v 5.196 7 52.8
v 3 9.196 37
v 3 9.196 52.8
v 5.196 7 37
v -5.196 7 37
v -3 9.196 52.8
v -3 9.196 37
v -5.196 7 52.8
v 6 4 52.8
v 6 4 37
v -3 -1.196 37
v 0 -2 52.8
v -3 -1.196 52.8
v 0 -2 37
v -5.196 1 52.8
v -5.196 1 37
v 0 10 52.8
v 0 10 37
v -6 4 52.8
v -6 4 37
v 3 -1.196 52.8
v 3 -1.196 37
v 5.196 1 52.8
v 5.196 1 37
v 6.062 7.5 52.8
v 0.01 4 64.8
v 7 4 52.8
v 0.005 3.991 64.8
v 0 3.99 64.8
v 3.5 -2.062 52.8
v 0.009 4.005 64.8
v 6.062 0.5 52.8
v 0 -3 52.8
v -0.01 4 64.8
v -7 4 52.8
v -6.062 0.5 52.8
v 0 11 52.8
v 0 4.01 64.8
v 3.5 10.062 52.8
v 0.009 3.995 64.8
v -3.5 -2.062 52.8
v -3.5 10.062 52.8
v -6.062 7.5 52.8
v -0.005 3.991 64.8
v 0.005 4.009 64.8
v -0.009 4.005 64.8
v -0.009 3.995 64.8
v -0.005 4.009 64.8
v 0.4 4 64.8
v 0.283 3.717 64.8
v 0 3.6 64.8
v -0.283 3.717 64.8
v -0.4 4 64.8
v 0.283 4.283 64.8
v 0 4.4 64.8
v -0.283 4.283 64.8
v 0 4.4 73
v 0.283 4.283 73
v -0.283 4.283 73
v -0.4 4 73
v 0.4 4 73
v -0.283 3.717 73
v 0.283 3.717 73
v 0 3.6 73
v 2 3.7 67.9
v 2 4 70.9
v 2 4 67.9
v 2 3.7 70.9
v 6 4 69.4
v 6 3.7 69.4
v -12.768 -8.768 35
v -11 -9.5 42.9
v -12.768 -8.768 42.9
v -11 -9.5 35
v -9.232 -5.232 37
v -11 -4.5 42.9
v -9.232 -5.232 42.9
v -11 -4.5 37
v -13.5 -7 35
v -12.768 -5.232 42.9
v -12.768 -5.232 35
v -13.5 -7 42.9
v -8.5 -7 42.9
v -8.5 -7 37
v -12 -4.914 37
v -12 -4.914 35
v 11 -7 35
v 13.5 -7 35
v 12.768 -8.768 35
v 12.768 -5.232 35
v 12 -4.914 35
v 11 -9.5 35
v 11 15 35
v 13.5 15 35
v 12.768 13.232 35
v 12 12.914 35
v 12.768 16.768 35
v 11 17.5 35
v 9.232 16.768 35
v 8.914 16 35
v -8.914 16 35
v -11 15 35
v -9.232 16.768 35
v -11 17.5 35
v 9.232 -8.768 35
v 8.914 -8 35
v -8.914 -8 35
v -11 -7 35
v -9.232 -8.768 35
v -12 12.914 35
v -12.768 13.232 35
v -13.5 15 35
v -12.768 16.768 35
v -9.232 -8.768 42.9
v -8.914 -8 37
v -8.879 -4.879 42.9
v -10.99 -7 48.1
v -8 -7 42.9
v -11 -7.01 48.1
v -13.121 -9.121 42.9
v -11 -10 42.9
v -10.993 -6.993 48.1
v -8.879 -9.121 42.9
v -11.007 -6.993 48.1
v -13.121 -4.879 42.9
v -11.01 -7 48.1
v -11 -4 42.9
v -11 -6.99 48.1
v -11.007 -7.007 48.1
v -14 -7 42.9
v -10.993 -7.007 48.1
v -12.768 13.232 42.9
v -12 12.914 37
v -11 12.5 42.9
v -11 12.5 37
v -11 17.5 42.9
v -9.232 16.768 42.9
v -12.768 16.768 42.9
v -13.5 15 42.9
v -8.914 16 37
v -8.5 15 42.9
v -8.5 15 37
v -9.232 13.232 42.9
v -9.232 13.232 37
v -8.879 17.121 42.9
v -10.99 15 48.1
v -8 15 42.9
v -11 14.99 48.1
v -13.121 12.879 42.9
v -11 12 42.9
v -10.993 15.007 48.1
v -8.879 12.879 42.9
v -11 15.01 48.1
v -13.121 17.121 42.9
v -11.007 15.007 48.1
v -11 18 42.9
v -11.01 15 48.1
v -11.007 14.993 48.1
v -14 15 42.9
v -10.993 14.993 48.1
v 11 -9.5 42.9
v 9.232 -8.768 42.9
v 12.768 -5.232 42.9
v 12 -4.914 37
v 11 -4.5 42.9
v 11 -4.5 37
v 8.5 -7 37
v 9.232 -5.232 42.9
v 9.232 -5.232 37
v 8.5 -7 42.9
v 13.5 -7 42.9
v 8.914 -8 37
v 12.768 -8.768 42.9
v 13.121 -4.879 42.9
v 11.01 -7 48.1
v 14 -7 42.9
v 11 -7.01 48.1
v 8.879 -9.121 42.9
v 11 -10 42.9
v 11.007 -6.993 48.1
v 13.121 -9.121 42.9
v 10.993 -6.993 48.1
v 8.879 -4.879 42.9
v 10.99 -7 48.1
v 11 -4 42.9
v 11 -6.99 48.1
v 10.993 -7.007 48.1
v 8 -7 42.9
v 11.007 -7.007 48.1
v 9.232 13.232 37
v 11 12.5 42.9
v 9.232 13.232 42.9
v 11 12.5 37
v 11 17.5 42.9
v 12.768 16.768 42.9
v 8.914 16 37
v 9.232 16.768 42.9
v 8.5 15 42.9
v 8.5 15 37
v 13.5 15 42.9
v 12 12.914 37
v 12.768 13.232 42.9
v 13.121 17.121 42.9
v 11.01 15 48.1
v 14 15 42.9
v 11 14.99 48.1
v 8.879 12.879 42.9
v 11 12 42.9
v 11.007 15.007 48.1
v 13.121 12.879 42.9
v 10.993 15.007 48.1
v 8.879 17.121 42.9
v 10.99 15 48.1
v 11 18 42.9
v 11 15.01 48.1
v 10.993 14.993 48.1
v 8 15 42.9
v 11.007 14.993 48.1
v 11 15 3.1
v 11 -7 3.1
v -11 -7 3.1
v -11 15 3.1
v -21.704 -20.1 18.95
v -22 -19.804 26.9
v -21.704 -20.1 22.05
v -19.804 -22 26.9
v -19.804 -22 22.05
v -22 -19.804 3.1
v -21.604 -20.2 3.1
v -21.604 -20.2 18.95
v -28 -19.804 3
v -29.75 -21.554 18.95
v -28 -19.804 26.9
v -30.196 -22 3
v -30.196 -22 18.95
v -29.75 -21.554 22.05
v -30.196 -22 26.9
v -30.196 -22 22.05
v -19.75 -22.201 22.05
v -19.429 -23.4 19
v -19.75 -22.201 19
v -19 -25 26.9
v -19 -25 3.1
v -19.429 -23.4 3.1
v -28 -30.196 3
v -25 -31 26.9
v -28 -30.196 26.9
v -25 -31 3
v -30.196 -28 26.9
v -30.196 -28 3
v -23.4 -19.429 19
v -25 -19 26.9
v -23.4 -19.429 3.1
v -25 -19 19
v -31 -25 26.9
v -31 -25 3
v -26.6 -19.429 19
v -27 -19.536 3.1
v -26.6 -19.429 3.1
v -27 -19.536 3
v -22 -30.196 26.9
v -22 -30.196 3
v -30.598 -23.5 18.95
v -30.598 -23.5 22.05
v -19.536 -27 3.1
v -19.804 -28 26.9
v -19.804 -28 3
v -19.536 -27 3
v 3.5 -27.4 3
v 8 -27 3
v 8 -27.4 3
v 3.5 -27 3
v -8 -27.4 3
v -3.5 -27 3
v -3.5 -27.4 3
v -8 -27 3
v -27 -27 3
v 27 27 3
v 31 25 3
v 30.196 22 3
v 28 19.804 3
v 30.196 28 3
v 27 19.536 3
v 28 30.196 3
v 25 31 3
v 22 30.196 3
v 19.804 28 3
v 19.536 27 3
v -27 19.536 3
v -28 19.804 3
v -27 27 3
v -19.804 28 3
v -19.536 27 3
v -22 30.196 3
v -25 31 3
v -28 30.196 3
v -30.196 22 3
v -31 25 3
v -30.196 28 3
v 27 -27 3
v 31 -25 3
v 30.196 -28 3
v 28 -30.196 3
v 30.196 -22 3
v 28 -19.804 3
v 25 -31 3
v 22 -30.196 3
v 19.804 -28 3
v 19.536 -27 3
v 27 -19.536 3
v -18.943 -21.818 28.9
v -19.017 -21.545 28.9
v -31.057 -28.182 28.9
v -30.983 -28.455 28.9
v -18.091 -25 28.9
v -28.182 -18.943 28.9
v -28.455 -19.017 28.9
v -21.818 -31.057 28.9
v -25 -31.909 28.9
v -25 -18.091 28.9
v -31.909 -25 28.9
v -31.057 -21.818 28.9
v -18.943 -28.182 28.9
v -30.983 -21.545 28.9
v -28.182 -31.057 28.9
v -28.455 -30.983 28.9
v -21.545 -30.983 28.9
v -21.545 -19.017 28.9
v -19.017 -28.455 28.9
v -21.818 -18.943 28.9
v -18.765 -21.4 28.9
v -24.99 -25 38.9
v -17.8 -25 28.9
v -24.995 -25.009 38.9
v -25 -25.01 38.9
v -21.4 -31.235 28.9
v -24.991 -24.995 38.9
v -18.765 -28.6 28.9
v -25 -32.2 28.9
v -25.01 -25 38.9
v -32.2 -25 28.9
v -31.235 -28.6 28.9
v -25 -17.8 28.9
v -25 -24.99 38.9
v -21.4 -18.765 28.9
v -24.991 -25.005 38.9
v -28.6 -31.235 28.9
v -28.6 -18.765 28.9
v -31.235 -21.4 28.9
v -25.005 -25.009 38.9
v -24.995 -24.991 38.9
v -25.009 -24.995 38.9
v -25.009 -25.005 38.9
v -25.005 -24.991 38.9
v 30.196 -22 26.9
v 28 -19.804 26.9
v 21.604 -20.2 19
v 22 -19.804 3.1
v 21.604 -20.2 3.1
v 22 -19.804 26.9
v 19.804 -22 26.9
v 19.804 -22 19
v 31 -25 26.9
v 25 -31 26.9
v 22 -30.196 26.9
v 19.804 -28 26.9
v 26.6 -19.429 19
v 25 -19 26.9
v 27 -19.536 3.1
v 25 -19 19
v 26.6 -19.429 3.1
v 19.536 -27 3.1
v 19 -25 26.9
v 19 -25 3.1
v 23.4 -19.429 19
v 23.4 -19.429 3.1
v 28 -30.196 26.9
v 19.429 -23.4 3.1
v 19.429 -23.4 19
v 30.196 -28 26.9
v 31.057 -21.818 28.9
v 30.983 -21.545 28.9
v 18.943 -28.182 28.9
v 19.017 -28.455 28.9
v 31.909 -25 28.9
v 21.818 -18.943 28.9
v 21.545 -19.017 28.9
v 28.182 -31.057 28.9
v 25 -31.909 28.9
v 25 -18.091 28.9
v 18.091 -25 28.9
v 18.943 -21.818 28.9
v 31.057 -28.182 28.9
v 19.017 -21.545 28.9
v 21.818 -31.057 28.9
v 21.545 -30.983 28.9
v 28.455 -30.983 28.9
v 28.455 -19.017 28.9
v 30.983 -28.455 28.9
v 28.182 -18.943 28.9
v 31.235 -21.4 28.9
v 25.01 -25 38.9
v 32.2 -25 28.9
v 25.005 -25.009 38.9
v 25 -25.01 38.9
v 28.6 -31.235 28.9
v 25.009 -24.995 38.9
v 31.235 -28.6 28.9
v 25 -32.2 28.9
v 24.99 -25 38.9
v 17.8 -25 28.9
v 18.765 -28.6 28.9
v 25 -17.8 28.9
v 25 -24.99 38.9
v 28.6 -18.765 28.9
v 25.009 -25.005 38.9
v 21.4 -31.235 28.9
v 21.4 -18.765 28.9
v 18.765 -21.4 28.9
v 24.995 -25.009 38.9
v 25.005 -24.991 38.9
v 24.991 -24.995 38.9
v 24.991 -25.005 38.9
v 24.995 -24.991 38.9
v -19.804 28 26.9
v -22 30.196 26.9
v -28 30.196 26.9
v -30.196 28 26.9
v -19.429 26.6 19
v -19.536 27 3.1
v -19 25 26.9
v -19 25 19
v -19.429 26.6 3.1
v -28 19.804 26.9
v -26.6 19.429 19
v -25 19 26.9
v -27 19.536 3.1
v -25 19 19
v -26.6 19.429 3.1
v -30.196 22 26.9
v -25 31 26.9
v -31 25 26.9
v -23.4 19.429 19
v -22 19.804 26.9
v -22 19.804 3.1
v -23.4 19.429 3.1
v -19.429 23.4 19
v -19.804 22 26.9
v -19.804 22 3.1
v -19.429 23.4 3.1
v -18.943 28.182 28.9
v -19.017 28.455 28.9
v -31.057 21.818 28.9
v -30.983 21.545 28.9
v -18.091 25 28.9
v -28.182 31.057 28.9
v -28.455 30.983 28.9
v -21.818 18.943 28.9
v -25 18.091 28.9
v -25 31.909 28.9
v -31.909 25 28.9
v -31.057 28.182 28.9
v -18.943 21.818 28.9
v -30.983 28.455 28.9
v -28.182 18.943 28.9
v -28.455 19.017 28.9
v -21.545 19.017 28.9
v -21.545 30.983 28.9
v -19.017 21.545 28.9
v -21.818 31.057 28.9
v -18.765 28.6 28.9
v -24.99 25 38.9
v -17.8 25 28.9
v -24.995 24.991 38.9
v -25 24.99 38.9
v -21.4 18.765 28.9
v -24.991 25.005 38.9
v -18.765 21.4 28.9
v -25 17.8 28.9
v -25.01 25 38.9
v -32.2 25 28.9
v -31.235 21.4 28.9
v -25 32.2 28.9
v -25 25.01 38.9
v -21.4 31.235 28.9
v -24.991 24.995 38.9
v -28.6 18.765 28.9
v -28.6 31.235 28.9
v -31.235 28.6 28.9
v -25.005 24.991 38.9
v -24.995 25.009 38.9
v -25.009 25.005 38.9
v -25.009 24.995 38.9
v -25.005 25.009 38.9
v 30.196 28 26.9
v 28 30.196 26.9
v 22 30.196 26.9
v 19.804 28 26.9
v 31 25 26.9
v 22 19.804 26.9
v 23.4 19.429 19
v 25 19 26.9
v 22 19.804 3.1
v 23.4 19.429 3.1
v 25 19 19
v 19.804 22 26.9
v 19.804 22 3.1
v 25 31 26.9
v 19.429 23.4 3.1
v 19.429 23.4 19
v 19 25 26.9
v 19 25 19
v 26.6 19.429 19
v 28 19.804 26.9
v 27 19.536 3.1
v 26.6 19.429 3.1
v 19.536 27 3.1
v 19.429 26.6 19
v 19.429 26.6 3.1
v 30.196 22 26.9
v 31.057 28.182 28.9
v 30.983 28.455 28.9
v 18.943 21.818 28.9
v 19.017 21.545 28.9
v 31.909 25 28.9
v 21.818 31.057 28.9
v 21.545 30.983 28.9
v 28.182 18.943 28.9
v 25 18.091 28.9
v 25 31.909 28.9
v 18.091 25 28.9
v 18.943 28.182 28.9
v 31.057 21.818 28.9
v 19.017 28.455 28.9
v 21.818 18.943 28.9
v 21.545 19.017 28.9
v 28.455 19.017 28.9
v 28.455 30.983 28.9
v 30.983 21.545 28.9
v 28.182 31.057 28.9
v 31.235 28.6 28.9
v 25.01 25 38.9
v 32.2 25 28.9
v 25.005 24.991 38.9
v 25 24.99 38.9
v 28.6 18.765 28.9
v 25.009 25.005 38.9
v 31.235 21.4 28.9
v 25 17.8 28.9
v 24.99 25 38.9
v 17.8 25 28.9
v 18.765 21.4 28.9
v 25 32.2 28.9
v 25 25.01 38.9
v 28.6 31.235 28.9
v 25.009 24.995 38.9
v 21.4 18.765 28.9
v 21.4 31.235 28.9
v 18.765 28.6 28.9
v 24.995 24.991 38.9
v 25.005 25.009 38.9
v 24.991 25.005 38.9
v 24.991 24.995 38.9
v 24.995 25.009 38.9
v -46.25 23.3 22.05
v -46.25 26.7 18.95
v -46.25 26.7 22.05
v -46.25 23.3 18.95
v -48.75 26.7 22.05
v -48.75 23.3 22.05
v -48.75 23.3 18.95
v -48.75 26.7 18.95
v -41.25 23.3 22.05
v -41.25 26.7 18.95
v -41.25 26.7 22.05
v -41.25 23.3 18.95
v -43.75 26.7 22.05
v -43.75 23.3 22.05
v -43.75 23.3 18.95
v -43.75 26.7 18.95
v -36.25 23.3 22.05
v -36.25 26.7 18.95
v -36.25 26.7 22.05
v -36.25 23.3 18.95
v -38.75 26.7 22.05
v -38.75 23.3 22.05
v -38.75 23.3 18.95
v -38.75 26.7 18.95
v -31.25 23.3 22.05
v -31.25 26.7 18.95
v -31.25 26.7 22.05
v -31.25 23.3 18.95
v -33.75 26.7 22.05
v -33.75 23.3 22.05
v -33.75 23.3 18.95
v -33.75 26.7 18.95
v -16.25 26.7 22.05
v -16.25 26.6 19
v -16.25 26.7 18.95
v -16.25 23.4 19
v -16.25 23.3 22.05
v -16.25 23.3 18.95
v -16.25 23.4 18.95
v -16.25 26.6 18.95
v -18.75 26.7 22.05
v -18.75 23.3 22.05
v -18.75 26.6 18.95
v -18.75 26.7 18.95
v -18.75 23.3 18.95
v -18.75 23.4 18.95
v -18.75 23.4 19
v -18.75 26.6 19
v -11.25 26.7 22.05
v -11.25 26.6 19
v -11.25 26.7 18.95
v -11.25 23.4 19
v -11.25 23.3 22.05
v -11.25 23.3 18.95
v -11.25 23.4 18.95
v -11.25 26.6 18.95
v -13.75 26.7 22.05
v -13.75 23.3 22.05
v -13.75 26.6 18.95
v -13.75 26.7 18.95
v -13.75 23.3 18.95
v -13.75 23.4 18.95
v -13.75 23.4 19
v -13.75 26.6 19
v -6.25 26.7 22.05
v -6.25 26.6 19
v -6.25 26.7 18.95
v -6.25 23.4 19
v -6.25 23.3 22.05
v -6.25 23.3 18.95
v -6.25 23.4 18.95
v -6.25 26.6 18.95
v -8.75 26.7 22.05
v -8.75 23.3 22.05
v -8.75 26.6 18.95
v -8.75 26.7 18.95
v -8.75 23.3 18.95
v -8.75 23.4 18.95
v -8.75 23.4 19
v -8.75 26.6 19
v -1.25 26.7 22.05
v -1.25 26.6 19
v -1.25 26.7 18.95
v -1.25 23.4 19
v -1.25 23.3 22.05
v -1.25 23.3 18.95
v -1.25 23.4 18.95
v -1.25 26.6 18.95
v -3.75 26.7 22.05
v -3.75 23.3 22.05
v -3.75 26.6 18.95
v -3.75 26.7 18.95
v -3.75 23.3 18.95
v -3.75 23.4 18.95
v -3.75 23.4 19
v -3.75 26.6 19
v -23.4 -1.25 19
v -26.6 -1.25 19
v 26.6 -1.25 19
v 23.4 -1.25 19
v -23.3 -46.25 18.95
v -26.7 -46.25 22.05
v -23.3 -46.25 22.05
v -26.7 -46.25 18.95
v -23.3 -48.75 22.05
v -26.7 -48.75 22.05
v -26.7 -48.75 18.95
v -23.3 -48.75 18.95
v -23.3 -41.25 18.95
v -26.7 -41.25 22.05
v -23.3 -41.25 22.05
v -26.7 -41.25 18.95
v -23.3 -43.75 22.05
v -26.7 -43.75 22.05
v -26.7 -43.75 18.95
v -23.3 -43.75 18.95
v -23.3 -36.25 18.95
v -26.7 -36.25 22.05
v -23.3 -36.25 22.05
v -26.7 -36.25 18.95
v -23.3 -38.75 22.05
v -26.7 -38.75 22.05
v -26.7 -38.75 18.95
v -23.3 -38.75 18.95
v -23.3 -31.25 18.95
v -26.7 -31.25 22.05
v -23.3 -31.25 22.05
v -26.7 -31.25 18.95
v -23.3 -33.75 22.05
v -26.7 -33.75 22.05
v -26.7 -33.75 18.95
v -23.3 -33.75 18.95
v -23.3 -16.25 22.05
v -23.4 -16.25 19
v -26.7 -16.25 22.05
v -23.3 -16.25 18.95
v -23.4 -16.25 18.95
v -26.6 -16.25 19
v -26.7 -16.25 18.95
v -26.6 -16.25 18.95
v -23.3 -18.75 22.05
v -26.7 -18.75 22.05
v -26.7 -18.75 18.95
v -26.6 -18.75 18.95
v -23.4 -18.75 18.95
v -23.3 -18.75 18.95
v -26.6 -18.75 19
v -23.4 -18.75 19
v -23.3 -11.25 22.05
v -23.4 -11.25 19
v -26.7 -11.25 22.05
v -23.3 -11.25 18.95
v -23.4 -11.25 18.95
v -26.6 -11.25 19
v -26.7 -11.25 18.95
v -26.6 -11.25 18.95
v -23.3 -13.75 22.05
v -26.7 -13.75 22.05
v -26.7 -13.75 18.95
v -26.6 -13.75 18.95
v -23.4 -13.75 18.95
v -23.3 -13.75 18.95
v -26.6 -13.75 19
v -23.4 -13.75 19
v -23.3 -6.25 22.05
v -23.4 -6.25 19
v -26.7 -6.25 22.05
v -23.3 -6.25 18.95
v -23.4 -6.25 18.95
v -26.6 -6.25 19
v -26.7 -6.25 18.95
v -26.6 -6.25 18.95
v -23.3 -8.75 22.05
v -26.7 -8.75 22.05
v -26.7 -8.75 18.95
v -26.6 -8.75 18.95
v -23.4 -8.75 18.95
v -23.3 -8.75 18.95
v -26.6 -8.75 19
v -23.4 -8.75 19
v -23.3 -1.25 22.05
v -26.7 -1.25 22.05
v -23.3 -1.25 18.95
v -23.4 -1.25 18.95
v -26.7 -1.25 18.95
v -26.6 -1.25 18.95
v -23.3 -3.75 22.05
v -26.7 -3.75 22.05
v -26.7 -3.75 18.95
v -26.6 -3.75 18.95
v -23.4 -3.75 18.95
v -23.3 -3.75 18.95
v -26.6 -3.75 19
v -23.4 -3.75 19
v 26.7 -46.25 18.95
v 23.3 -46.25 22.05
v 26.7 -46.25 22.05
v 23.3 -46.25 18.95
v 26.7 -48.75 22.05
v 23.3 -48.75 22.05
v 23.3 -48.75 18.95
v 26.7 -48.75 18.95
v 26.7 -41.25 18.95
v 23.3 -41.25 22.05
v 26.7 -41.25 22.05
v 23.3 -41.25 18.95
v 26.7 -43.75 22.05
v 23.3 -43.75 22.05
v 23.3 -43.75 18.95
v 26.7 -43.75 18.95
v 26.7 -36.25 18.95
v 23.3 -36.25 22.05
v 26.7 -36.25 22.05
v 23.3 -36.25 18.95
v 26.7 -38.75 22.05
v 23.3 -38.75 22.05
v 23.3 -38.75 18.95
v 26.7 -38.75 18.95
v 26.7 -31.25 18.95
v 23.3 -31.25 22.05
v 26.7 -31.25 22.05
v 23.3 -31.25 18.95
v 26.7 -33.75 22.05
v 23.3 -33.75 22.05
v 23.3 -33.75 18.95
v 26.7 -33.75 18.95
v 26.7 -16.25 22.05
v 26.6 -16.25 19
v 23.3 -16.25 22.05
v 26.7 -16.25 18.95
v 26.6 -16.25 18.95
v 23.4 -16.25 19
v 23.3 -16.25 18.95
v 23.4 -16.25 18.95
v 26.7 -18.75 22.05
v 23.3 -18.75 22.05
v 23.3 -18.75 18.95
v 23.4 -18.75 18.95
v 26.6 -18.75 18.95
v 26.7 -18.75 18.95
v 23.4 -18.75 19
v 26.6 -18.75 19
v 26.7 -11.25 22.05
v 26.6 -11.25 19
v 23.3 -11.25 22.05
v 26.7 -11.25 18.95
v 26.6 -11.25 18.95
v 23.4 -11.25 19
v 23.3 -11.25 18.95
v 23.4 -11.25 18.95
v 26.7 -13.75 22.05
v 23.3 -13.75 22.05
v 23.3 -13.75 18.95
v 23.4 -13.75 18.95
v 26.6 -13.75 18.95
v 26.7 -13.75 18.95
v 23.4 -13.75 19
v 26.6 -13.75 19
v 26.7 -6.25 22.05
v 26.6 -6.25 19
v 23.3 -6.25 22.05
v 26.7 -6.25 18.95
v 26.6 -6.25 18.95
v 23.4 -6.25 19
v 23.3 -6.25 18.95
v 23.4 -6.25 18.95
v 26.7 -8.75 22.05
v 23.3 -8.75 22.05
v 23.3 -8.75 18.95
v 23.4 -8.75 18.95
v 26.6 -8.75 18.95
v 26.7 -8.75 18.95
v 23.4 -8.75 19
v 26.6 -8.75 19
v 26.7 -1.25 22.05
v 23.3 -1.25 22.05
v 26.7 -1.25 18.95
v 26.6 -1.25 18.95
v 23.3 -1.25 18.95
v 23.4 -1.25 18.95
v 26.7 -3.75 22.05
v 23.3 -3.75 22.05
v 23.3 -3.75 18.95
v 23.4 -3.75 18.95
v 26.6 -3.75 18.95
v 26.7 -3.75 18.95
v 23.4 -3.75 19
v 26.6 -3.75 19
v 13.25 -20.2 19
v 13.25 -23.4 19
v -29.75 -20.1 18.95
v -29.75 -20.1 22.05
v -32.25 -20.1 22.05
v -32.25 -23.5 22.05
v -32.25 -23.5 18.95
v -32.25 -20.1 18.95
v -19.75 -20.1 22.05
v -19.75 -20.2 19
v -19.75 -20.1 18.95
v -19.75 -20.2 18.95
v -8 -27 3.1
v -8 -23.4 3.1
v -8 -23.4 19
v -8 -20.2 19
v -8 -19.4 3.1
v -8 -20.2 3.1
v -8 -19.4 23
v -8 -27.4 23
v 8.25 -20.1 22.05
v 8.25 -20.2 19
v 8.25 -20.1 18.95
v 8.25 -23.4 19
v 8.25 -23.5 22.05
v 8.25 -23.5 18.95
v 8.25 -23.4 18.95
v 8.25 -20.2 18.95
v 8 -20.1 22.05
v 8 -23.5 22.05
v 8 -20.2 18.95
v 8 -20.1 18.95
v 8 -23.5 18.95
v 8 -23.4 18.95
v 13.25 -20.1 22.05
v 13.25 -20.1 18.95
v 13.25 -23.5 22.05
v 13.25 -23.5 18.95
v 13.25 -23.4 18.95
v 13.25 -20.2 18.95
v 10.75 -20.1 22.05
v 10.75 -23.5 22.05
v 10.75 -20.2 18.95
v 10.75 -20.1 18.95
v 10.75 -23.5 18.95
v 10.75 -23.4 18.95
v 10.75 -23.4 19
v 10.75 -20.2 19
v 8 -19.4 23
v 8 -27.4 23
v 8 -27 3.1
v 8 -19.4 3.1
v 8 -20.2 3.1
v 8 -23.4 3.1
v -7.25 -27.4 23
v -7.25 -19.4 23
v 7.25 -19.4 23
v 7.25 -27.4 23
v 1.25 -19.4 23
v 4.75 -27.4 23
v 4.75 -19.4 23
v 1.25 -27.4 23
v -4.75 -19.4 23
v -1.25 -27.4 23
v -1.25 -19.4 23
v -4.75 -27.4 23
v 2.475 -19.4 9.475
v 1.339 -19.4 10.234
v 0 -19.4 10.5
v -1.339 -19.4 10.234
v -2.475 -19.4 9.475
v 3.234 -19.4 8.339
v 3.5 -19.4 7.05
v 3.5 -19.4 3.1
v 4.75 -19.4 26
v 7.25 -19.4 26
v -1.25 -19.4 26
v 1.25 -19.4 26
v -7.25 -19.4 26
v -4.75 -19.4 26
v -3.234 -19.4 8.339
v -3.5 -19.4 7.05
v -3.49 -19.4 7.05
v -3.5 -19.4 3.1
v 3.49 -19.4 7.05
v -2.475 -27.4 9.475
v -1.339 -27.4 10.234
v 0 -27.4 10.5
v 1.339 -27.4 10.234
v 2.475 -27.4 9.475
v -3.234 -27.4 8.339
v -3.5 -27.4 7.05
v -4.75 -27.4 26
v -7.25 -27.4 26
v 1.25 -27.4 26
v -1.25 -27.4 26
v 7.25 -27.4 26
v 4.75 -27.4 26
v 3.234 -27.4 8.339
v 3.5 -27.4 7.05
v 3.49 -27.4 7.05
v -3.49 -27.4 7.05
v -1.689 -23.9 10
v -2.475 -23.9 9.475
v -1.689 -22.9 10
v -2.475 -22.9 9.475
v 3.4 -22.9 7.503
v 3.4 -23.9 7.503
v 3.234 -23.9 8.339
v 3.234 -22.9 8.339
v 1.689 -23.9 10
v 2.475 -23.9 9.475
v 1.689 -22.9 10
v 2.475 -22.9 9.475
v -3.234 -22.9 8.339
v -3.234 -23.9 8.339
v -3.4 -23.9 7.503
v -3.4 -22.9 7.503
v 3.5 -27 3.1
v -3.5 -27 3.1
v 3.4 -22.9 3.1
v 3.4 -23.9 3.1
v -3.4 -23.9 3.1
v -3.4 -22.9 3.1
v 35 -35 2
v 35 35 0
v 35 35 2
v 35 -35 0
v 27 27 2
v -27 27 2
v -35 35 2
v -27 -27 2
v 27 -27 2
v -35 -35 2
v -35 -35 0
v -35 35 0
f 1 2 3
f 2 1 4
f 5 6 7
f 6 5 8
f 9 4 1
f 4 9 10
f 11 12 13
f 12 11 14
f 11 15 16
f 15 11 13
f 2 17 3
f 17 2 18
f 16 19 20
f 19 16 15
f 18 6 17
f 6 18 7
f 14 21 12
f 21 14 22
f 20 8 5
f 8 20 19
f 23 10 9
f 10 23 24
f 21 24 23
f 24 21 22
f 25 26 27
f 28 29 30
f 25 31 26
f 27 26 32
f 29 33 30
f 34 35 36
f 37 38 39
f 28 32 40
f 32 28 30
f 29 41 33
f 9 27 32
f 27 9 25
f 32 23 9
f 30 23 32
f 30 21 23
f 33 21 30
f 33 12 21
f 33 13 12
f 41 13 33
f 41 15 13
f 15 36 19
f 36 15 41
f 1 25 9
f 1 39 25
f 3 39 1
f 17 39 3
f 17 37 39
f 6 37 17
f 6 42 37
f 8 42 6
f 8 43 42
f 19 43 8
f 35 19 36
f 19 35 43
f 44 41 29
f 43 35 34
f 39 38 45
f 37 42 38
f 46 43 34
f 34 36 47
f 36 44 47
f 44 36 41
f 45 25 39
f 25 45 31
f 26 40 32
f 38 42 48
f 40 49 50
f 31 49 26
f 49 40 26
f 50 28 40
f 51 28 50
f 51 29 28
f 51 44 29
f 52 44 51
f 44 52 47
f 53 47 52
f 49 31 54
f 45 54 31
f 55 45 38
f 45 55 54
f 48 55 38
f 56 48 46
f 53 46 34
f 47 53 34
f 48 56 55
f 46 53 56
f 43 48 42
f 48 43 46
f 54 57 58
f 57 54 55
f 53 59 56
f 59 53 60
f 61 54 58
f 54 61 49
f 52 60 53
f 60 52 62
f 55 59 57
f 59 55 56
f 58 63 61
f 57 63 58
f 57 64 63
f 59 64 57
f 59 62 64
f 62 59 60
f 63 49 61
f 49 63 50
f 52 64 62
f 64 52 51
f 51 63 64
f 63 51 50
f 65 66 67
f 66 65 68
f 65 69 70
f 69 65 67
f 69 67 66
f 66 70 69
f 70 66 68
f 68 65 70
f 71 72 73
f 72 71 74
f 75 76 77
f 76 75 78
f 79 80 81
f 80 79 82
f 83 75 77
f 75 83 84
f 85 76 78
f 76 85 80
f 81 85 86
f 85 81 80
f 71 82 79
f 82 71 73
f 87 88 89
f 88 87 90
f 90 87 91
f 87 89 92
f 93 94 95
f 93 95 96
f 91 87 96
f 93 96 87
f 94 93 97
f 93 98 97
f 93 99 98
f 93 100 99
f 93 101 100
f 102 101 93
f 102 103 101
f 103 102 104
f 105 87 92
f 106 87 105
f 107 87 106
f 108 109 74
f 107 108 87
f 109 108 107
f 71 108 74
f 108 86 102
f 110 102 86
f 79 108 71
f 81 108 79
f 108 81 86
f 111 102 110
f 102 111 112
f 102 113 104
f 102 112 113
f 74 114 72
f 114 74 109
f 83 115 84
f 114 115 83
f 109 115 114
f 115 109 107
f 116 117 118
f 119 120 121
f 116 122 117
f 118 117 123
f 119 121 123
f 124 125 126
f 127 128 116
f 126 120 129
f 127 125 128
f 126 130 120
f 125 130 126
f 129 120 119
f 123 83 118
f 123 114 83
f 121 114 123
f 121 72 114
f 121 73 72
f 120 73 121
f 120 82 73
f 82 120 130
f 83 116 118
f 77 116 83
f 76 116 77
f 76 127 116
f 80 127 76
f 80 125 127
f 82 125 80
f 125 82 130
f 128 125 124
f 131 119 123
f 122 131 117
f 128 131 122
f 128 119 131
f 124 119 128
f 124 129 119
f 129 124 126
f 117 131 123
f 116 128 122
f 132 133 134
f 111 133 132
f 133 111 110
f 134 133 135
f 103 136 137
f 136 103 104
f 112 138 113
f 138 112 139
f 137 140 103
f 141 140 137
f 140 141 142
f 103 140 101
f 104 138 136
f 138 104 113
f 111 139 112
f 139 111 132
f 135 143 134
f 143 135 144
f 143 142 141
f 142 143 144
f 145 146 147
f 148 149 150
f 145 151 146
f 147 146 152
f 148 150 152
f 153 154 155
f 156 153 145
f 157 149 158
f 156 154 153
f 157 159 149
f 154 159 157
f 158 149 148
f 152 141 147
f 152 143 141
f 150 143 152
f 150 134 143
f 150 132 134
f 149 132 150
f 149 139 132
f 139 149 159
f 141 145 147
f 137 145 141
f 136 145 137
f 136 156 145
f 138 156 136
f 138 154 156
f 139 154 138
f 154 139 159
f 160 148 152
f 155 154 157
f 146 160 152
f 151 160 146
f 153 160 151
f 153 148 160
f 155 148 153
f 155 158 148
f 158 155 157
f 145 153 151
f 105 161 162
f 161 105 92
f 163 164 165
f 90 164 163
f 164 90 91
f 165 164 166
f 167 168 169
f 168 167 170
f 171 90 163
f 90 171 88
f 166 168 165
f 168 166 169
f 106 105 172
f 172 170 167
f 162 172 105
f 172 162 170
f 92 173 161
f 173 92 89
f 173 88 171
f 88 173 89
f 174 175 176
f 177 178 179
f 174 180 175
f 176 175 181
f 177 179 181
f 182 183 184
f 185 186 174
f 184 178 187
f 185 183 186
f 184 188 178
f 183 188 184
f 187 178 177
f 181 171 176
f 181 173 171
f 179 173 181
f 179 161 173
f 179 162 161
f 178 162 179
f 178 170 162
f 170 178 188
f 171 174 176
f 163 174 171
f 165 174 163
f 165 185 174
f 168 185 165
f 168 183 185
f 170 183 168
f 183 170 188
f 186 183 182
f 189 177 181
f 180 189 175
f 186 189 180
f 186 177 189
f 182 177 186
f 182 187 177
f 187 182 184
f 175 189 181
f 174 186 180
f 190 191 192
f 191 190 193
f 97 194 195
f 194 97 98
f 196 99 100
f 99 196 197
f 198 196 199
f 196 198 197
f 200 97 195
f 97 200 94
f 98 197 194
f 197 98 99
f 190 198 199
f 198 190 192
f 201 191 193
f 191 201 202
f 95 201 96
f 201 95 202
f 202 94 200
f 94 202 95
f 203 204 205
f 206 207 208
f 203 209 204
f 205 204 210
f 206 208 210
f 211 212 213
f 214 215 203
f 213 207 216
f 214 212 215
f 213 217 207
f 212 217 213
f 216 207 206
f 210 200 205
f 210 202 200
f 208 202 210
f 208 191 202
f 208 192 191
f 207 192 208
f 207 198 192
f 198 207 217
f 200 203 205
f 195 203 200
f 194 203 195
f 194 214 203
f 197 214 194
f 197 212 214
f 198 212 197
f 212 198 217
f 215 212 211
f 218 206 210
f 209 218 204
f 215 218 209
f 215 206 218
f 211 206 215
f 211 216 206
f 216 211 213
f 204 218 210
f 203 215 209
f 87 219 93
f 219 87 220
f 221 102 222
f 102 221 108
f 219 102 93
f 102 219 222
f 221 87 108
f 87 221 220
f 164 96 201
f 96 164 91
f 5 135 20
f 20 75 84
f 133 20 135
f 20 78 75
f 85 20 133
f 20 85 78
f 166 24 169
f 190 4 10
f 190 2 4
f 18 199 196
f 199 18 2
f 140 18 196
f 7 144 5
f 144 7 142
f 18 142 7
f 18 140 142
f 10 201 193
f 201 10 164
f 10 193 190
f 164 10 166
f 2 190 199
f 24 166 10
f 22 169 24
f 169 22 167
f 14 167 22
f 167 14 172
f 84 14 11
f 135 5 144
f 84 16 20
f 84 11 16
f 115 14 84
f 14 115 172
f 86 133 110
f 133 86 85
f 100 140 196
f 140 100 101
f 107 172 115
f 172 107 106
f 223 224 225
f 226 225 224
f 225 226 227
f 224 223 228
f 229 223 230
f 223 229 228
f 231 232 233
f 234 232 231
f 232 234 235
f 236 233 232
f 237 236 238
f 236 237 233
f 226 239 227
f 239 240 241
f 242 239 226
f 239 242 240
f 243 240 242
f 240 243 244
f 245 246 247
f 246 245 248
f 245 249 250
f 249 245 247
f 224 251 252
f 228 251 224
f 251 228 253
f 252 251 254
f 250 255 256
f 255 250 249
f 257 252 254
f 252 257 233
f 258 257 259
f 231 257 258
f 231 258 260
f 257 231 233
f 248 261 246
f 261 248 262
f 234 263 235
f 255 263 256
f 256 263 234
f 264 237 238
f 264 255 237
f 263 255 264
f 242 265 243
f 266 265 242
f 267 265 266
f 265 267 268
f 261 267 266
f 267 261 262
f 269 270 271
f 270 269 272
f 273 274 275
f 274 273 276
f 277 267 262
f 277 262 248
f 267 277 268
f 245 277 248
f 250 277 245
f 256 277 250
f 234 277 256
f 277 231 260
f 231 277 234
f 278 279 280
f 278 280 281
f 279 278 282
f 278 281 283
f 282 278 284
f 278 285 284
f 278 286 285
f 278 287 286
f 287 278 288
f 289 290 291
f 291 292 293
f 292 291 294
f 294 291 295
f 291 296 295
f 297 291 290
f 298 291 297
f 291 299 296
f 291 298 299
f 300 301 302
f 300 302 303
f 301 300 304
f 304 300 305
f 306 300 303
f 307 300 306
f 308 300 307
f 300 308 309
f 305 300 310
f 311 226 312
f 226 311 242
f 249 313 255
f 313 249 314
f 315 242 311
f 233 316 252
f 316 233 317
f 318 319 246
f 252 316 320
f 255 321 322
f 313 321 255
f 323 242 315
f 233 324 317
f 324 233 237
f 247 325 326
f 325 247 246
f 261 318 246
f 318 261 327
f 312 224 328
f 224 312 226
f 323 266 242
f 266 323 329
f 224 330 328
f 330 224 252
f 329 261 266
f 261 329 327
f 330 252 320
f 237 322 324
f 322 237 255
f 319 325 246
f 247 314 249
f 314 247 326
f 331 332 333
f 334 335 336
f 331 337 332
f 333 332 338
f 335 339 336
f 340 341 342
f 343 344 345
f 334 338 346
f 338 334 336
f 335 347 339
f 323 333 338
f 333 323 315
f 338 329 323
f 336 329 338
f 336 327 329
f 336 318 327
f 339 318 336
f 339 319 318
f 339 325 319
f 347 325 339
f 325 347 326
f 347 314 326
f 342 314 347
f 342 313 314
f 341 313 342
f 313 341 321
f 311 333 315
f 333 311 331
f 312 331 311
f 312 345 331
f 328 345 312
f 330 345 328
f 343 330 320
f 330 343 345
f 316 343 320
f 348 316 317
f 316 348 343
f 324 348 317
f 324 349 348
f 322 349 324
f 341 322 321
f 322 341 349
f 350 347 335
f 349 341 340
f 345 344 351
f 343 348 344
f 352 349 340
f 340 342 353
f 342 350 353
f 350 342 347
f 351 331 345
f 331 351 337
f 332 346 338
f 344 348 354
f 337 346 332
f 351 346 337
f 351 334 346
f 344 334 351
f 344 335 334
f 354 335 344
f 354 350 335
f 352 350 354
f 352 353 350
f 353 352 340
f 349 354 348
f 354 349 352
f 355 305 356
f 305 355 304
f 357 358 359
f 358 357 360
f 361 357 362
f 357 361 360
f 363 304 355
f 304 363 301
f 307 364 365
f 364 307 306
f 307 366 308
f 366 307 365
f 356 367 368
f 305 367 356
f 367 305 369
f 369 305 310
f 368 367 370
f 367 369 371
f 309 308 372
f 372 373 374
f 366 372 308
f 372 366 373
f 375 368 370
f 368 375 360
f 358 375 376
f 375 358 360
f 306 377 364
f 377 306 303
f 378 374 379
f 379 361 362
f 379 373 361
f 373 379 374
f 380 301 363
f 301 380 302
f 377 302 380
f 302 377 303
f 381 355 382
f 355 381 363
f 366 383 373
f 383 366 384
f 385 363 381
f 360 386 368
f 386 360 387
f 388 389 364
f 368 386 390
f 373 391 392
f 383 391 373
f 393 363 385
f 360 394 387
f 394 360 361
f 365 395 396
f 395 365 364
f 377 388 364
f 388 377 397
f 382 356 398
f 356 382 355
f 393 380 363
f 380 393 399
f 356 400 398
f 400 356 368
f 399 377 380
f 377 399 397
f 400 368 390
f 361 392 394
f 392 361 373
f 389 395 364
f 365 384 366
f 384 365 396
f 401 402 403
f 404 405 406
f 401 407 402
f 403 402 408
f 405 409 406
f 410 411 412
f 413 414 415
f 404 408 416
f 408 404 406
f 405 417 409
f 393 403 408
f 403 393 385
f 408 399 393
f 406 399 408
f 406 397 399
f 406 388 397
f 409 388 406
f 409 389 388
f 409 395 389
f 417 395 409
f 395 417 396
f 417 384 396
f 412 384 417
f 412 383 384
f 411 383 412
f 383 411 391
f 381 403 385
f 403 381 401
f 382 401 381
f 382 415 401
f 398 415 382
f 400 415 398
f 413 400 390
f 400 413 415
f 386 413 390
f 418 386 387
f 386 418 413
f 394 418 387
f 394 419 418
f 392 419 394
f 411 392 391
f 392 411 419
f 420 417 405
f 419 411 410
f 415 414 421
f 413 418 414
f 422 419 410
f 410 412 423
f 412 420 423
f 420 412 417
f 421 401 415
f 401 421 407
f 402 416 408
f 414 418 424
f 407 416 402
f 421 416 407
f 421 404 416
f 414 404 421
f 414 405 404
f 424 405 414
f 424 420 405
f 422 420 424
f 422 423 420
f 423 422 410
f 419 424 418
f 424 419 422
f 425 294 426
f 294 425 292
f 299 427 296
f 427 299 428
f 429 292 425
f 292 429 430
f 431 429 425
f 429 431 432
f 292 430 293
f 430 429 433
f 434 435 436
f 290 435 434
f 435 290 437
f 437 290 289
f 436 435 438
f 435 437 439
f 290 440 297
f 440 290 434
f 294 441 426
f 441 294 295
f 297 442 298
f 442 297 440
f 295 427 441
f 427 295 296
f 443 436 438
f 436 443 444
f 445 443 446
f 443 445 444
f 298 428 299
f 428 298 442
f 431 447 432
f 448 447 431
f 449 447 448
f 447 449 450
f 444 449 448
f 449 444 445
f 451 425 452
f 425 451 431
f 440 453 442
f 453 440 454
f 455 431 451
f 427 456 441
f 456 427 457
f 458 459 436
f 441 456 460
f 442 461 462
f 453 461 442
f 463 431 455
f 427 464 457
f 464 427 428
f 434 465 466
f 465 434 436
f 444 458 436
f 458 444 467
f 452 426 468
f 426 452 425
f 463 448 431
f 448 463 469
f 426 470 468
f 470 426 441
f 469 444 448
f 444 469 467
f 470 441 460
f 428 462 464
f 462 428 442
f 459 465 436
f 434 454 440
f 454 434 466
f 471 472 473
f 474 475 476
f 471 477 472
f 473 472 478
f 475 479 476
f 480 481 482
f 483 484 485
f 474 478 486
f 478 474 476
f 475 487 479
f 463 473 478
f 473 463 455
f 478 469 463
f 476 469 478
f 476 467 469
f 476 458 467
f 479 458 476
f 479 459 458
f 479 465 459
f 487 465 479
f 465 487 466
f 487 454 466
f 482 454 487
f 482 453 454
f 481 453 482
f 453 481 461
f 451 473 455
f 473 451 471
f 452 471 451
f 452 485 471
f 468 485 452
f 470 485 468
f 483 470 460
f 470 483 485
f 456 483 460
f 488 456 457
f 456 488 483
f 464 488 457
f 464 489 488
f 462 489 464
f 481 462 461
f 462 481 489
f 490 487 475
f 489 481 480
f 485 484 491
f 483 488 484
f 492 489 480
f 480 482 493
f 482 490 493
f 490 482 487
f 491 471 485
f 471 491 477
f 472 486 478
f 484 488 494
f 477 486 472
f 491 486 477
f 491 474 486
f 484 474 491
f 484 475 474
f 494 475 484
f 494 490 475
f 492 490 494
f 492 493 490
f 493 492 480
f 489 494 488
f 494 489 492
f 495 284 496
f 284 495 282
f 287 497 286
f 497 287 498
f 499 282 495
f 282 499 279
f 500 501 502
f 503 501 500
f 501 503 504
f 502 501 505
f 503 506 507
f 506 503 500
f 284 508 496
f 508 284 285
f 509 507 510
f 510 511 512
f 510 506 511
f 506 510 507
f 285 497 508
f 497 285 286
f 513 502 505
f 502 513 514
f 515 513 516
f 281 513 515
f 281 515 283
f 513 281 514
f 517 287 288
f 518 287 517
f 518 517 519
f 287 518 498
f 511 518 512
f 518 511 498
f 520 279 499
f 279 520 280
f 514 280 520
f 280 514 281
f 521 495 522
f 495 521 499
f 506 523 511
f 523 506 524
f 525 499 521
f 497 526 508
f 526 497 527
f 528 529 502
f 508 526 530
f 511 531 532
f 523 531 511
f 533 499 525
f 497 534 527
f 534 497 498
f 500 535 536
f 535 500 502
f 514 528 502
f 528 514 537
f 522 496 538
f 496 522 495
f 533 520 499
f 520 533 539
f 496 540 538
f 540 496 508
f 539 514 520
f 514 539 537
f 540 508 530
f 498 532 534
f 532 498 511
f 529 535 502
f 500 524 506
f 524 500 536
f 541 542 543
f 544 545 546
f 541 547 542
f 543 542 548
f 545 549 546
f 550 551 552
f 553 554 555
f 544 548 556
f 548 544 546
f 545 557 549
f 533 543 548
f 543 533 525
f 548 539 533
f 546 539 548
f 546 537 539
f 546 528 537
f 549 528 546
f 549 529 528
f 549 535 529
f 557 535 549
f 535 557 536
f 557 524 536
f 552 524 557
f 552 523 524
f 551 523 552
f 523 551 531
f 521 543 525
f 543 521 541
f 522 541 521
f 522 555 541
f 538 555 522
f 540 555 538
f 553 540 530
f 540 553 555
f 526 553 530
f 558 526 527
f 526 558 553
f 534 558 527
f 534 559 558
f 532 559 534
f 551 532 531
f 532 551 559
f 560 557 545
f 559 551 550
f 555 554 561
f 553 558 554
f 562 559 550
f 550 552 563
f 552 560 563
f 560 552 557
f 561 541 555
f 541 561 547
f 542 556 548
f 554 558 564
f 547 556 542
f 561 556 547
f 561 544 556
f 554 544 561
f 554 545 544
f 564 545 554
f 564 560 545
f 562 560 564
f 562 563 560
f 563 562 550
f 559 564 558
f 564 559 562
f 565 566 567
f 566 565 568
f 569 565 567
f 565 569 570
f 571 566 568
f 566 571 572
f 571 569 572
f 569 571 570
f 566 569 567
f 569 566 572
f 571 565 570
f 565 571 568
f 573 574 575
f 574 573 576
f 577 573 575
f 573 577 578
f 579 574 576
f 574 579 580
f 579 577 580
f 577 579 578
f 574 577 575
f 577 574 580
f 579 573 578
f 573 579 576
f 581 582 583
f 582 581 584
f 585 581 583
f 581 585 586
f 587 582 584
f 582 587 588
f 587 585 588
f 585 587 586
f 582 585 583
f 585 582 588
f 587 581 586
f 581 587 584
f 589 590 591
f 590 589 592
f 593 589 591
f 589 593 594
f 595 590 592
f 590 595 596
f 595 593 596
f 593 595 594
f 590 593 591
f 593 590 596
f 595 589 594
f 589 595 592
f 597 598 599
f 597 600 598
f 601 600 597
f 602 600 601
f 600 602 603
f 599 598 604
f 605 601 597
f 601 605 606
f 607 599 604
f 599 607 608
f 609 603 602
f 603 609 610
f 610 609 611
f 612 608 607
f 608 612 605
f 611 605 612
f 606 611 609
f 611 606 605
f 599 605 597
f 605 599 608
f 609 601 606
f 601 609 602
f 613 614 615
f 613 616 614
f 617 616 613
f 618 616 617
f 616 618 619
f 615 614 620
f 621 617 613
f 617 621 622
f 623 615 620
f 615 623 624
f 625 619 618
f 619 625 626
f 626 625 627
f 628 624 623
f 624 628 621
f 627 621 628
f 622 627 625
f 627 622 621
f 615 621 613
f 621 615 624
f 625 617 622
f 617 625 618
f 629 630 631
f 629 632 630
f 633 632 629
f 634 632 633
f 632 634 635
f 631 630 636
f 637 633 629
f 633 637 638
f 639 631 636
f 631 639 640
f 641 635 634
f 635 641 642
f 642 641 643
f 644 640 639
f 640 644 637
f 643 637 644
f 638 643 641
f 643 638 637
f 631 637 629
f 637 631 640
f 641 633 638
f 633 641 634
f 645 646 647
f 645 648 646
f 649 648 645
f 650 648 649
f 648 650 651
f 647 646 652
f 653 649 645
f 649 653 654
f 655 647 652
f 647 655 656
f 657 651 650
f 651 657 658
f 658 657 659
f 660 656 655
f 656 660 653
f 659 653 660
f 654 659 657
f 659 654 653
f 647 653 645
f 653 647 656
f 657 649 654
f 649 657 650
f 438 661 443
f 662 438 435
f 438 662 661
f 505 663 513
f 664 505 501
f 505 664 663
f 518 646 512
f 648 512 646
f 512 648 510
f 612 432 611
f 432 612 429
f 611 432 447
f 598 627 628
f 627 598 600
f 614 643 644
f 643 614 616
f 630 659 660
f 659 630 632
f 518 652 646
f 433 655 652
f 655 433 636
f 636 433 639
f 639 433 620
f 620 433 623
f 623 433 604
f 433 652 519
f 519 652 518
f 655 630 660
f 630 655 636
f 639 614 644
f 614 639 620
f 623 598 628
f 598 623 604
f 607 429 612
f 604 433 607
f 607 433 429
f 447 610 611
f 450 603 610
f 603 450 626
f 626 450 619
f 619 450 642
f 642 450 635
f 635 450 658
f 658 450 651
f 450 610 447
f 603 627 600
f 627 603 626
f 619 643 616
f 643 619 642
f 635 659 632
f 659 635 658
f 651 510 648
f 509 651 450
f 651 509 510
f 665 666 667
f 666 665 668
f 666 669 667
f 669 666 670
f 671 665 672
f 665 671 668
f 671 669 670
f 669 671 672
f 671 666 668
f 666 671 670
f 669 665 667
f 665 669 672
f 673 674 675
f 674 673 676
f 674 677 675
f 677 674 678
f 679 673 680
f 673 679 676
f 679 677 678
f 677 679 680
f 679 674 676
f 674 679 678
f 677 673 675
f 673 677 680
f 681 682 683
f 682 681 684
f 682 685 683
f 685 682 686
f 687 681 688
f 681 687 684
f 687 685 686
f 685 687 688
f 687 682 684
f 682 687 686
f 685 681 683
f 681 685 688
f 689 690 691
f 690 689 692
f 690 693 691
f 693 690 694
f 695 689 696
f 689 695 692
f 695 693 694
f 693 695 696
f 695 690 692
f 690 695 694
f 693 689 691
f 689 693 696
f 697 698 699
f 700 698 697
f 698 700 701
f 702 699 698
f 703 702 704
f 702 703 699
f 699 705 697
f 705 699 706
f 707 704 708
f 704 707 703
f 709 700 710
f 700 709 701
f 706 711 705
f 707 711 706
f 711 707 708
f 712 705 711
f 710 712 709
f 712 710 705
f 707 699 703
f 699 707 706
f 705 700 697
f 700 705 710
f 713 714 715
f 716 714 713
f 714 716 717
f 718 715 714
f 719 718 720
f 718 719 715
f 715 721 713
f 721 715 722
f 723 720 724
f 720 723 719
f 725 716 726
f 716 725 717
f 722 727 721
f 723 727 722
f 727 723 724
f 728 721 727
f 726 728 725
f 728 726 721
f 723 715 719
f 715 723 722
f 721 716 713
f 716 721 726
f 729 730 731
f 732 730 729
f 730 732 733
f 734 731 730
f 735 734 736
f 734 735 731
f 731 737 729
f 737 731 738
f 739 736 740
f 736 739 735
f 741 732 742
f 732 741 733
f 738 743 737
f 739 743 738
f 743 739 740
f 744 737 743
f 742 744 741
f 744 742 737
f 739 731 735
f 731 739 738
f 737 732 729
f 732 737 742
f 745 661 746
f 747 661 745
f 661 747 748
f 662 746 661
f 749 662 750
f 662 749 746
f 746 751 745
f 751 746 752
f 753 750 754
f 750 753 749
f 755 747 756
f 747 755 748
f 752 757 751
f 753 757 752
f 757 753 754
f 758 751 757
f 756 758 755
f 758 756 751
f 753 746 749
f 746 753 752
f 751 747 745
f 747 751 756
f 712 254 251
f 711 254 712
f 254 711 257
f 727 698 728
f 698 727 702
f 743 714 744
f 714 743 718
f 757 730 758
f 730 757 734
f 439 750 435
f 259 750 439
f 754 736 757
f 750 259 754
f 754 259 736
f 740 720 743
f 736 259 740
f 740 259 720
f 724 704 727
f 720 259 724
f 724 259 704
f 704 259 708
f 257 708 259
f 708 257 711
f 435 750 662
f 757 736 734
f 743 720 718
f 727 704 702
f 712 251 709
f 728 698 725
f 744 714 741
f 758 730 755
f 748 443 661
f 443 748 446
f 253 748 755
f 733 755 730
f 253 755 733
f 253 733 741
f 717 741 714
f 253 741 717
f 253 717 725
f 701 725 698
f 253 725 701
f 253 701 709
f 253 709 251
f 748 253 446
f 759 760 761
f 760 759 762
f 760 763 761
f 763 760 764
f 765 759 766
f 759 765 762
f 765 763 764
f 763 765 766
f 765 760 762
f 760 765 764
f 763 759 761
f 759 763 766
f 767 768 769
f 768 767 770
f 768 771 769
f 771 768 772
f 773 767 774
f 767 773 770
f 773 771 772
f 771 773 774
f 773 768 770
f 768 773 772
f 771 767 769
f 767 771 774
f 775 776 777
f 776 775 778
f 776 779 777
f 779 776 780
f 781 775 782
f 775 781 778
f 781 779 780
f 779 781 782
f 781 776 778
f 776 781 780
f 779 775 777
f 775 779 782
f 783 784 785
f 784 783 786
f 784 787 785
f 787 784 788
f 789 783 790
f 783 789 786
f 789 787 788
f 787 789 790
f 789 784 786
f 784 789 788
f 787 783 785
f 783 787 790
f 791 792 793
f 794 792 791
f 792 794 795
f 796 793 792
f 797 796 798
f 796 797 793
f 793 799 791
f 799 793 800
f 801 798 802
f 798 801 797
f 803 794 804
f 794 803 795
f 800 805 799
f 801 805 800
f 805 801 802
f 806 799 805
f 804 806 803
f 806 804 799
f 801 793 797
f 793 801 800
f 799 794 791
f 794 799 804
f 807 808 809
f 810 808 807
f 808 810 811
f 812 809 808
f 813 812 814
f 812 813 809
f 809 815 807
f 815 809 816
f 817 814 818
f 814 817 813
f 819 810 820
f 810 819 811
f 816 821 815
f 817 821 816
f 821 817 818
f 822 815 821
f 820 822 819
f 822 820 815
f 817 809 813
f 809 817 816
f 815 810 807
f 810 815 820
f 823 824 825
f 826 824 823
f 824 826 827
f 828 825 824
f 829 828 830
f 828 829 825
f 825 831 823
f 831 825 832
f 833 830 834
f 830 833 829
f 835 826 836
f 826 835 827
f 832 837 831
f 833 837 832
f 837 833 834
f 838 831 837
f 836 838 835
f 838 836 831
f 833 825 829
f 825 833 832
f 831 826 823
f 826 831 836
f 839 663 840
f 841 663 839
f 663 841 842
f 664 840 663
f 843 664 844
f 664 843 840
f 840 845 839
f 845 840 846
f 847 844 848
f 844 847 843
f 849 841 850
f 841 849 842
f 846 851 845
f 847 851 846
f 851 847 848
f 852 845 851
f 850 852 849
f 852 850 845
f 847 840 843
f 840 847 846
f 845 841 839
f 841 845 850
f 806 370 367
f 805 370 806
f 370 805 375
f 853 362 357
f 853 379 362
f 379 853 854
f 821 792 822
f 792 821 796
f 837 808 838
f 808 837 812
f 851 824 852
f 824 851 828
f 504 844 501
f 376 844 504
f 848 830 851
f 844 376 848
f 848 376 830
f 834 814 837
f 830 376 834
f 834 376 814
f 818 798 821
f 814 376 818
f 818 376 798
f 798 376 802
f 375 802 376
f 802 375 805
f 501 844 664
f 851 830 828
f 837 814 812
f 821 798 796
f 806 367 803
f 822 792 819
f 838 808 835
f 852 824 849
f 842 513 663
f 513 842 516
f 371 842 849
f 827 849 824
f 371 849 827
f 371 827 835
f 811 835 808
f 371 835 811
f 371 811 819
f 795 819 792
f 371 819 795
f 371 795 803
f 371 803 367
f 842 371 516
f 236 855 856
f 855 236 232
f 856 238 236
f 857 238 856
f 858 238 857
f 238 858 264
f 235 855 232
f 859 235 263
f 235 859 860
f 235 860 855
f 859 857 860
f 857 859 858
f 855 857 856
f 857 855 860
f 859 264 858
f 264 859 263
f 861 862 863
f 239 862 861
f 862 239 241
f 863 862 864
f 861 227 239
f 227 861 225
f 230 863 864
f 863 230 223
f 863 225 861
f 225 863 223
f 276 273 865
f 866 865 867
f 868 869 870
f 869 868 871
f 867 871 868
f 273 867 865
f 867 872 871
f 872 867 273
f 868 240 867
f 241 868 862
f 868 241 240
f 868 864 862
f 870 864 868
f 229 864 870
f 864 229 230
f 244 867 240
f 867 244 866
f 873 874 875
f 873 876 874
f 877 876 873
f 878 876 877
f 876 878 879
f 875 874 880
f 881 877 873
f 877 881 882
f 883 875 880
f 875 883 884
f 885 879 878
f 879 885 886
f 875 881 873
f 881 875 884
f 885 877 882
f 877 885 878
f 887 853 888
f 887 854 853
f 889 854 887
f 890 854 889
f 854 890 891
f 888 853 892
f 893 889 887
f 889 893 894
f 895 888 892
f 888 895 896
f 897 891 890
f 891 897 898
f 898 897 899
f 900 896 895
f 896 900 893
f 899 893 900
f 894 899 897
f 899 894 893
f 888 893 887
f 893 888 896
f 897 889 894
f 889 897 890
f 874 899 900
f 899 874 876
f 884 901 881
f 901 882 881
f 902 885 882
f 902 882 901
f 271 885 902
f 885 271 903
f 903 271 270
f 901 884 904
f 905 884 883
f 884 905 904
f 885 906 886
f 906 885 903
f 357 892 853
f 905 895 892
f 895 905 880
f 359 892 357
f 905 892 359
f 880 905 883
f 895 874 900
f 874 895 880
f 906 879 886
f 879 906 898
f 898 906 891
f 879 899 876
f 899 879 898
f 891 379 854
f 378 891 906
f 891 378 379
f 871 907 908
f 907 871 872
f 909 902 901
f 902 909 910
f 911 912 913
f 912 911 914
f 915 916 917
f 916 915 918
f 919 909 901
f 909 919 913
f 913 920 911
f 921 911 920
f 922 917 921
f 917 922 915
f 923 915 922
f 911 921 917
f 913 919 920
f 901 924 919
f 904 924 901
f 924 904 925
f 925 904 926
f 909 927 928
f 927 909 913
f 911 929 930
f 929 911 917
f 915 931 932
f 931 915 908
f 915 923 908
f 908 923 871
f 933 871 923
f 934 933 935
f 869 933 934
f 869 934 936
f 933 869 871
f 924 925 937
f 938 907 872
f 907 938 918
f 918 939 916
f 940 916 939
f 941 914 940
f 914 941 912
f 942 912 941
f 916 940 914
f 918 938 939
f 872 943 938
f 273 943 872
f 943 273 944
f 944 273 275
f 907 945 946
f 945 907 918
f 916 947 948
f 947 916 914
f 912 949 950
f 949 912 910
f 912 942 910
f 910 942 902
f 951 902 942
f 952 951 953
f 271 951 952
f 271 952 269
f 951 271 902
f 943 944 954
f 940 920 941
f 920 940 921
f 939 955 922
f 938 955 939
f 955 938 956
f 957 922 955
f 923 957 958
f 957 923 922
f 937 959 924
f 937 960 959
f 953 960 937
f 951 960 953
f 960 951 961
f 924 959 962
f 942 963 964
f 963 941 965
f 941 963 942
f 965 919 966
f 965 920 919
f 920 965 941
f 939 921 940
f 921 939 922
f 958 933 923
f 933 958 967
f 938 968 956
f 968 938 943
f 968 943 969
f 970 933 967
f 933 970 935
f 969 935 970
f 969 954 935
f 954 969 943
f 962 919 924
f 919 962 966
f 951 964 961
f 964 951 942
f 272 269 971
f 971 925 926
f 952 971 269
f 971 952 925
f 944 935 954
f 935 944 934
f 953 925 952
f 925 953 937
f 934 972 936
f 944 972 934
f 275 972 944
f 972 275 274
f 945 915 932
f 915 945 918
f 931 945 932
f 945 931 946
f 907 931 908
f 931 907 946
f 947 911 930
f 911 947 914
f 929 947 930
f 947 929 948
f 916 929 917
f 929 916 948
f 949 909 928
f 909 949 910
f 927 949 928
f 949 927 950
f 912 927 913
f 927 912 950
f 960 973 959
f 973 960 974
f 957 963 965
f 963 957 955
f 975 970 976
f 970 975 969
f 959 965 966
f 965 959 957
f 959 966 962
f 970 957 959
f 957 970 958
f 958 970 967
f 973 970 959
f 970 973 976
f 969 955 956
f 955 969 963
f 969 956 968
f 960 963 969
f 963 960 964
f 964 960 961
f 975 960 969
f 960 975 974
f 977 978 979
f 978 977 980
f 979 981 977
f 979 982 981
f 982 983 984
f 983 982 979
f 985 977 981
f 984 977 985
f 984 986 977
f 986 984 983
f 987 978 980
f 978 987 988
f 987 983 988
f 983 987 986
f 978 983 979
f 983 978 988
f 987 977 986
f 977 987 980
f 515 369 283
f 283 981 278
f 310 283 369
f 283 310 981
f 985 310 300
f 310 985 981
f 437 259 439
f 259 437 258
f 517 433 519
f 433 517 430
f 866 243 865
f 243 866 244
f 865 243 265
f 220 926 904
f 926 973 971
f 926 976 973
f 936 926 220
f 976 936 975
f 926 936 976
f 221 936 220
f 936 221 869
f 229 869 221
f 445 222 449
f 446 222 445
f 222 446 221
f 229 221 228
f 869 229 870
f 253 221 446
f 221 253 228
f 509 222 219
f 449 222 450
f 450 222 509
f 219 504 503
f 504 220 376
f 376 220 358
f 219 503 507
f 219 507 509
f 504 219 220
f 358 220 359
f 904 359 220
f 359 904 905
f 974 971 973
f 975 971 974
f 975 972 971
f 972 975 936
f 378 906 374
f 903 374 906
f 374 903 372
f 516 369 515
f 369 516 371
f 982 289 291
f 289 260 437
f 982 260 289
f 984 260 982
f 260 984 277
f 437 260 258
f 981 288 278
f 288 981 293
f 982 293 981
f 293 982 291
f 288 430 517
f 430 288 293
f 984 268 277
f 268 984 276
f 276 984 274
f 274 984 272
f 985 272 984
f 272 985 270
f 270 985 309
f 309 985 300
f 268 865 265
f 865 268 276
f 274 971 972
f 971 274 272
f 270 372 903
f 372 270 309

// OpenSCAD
// Medieval Castle 3D Model
// Low-poly procedural design in OpenSCAD

$fn = 12; // Crisp low-poly faceted look

// Color Palette
stone_color       = [0.65, 0.65, 0.68]; // Light grey stone
stone_dark        = [0.45, 0.45, 0.48]; // Darker stone for trim/battlements
roof_color        = [0.80, 0.25, 0.20]; // Crimson red roofs
door_color        = [0.45, 0.28, 0.15]; // Wood brown
flag_color        = [0.90, 0.75, 0.15]; // Gold flag
ground_color      = [0.35, 0.65, 0.35]; // Grass green

// Parameters
wall_h = 16;
wall_t = 3.2;
castle_size = 50; // Outer dimension

module merlon() {
    cube([2.5, 3.4, 3.1], center=true);
}

module battlements_line(length) {
    count = floor(length / 5);
    for (i = [0 : count-1]) {
        translate([i * 5 - length/2 + 2.5, 0, 0])
            merlon();
    }
}

module wall_section(length) {
    color(stone_color)
        cube([length, wall_t, wall_h], center=false);
    color(stone_dark)
        translate([0, wall_t/2, wall_h + 1.5])
            battlements_line(length);
}

module corner_tower() {
    tower_h = 24;
    r = 6;
    roof_h = 10;
    
    color(stone_color)
        cylinder(r=r, h=tower_h, $fn=12);
    
    color(stone_dark)
        translate([0, 0, tower_h - 0.1])
            cylinder(r1=r, r2=r+1, h=2.2, $fn=12);
            
    color(roof_color)
        translate([0, 0, tower_h + 1.9])
            cylinder(r1=r+1.2, r2=0.01, h=roof_h, $fn=12);
}

module gatehouse() {
    gh_w = 16;
    gh_d = 8;
    gh_h = 20;
    
    color(stone_color)
    difference() {
        cube([gh_w, gh_d, gh_h], center=true);
        translate([0, 0, -gh_h/2 + 4])
            rotate([90, 0, 0])
                cylinder(r=3.5, h=gh_d+4, center=true, $fn=16);
        translate([0, 0, -gh_h/2 + 2])
            cube([7, gh_d+4, 4.1], center=true);
    }
    
    color(door_color)
        translate([0, 0, -gh_h/2 + 3.5])
            cube([6.8, 1, 7], center=true);
            
    color(stone_dark)
    for (x = [-6, 0, 6]) {
        translate([x, 0, gh_h/2 + 1.5])
            cube([2.5, gh_d, 3], center=true);
    }
}

module keep() {
    keep_w = 22;
    keep_d = 22;
    keep_h = 32;
    
    color(stone_color)
        cube([keep_w, keep_d, keep_h], center=true);
        
    color(stone_dark)
        translate([0, 0, keep_h/2 + 1])
            cube([keep_w+2, keep_d+2, 2], center=true);
            
    spire_r = 6;
    spire_h = 16;
    translate([0, 0, keep_h/2 + 1.9]) {
        color(stone_color)
            cylinder(r=spire_r, h=spire_h, $fn=12);
        
        color(roof_color)
            translate([0, 0, spire_h - 0.1])
                cylinder(r1=spire_r+1, r2=0.01, h=12, $fn=12);
                
        color(stone_dark)
            translate([0, 0, spire_h + 11.9])
                cylinder(r=0.4, h=8.2, $fn=8);
                
        color(flag_color)
            translate([2, 0, spire_h + 18])
                rotate([90, 0, 0])
                    linear_extrude(0.3)
                        polygon(points=[[0,0], [4, -1.5], [0, -3]]);
    }
    
    for (x = [-keep_w/2, keep_w/2]) {
        for (y = [-keep_d/2, keep_d/2]) {
            translate([x, y, keep_h/2]) {
                color(stone_color)
                    cylinder(r=2.5, h=8, $fn=8);
                color(roof_color)
                    translate([0, 0, 7.9])
                        cylinder(r1=3, r2=0.01, h=5.2, $fn=8);
            }
        }
    }
}

module castle() {
    half = castle_size / 2;
    
    color(ground_color)
        translate([0, 0, 1])
            cube([castle_size + 20, castle_size + 20, 2], center=true);
            
    color(stone_dark)
        translate([0, 0, 2.5])
            cube([castle_size + 4, castle_size + 4, 1.2], center=true);
            
    translate([0, 0, 3]) {
        translate([0, 4, 16])
            keep();
            
        translate([-half, -half, 0]) corner_tower();
        translate([half, -half, 0])  corner_tower();
        translate([-half, half, 0])  corner_tower();
        translate([half, half, 0])   corner_tower();
        
        translate([-half, half - wall_t/2, 0])
            wall_section(castle_size);
            
        translate([-half + wall_t/2, -half, 0])
            rotate([0, 0, 90])
                wall_section(castle_size);
                
        translate([half + wall_t/2, -half, 0])
            rotate([0, 0, 90])
                wall_section(castle_size);
                
        translate([-half, -half + wall_t/2, 0])
            wall_section((castle_size - 16) / 2);
            
        translate([8, -half + wall_t/2, 0])
            wall_section((castle_size - 16) / 2);
            
        translate([0, -half + wall_t/2, 10])
            gatehouse();
    }
}

castle();
